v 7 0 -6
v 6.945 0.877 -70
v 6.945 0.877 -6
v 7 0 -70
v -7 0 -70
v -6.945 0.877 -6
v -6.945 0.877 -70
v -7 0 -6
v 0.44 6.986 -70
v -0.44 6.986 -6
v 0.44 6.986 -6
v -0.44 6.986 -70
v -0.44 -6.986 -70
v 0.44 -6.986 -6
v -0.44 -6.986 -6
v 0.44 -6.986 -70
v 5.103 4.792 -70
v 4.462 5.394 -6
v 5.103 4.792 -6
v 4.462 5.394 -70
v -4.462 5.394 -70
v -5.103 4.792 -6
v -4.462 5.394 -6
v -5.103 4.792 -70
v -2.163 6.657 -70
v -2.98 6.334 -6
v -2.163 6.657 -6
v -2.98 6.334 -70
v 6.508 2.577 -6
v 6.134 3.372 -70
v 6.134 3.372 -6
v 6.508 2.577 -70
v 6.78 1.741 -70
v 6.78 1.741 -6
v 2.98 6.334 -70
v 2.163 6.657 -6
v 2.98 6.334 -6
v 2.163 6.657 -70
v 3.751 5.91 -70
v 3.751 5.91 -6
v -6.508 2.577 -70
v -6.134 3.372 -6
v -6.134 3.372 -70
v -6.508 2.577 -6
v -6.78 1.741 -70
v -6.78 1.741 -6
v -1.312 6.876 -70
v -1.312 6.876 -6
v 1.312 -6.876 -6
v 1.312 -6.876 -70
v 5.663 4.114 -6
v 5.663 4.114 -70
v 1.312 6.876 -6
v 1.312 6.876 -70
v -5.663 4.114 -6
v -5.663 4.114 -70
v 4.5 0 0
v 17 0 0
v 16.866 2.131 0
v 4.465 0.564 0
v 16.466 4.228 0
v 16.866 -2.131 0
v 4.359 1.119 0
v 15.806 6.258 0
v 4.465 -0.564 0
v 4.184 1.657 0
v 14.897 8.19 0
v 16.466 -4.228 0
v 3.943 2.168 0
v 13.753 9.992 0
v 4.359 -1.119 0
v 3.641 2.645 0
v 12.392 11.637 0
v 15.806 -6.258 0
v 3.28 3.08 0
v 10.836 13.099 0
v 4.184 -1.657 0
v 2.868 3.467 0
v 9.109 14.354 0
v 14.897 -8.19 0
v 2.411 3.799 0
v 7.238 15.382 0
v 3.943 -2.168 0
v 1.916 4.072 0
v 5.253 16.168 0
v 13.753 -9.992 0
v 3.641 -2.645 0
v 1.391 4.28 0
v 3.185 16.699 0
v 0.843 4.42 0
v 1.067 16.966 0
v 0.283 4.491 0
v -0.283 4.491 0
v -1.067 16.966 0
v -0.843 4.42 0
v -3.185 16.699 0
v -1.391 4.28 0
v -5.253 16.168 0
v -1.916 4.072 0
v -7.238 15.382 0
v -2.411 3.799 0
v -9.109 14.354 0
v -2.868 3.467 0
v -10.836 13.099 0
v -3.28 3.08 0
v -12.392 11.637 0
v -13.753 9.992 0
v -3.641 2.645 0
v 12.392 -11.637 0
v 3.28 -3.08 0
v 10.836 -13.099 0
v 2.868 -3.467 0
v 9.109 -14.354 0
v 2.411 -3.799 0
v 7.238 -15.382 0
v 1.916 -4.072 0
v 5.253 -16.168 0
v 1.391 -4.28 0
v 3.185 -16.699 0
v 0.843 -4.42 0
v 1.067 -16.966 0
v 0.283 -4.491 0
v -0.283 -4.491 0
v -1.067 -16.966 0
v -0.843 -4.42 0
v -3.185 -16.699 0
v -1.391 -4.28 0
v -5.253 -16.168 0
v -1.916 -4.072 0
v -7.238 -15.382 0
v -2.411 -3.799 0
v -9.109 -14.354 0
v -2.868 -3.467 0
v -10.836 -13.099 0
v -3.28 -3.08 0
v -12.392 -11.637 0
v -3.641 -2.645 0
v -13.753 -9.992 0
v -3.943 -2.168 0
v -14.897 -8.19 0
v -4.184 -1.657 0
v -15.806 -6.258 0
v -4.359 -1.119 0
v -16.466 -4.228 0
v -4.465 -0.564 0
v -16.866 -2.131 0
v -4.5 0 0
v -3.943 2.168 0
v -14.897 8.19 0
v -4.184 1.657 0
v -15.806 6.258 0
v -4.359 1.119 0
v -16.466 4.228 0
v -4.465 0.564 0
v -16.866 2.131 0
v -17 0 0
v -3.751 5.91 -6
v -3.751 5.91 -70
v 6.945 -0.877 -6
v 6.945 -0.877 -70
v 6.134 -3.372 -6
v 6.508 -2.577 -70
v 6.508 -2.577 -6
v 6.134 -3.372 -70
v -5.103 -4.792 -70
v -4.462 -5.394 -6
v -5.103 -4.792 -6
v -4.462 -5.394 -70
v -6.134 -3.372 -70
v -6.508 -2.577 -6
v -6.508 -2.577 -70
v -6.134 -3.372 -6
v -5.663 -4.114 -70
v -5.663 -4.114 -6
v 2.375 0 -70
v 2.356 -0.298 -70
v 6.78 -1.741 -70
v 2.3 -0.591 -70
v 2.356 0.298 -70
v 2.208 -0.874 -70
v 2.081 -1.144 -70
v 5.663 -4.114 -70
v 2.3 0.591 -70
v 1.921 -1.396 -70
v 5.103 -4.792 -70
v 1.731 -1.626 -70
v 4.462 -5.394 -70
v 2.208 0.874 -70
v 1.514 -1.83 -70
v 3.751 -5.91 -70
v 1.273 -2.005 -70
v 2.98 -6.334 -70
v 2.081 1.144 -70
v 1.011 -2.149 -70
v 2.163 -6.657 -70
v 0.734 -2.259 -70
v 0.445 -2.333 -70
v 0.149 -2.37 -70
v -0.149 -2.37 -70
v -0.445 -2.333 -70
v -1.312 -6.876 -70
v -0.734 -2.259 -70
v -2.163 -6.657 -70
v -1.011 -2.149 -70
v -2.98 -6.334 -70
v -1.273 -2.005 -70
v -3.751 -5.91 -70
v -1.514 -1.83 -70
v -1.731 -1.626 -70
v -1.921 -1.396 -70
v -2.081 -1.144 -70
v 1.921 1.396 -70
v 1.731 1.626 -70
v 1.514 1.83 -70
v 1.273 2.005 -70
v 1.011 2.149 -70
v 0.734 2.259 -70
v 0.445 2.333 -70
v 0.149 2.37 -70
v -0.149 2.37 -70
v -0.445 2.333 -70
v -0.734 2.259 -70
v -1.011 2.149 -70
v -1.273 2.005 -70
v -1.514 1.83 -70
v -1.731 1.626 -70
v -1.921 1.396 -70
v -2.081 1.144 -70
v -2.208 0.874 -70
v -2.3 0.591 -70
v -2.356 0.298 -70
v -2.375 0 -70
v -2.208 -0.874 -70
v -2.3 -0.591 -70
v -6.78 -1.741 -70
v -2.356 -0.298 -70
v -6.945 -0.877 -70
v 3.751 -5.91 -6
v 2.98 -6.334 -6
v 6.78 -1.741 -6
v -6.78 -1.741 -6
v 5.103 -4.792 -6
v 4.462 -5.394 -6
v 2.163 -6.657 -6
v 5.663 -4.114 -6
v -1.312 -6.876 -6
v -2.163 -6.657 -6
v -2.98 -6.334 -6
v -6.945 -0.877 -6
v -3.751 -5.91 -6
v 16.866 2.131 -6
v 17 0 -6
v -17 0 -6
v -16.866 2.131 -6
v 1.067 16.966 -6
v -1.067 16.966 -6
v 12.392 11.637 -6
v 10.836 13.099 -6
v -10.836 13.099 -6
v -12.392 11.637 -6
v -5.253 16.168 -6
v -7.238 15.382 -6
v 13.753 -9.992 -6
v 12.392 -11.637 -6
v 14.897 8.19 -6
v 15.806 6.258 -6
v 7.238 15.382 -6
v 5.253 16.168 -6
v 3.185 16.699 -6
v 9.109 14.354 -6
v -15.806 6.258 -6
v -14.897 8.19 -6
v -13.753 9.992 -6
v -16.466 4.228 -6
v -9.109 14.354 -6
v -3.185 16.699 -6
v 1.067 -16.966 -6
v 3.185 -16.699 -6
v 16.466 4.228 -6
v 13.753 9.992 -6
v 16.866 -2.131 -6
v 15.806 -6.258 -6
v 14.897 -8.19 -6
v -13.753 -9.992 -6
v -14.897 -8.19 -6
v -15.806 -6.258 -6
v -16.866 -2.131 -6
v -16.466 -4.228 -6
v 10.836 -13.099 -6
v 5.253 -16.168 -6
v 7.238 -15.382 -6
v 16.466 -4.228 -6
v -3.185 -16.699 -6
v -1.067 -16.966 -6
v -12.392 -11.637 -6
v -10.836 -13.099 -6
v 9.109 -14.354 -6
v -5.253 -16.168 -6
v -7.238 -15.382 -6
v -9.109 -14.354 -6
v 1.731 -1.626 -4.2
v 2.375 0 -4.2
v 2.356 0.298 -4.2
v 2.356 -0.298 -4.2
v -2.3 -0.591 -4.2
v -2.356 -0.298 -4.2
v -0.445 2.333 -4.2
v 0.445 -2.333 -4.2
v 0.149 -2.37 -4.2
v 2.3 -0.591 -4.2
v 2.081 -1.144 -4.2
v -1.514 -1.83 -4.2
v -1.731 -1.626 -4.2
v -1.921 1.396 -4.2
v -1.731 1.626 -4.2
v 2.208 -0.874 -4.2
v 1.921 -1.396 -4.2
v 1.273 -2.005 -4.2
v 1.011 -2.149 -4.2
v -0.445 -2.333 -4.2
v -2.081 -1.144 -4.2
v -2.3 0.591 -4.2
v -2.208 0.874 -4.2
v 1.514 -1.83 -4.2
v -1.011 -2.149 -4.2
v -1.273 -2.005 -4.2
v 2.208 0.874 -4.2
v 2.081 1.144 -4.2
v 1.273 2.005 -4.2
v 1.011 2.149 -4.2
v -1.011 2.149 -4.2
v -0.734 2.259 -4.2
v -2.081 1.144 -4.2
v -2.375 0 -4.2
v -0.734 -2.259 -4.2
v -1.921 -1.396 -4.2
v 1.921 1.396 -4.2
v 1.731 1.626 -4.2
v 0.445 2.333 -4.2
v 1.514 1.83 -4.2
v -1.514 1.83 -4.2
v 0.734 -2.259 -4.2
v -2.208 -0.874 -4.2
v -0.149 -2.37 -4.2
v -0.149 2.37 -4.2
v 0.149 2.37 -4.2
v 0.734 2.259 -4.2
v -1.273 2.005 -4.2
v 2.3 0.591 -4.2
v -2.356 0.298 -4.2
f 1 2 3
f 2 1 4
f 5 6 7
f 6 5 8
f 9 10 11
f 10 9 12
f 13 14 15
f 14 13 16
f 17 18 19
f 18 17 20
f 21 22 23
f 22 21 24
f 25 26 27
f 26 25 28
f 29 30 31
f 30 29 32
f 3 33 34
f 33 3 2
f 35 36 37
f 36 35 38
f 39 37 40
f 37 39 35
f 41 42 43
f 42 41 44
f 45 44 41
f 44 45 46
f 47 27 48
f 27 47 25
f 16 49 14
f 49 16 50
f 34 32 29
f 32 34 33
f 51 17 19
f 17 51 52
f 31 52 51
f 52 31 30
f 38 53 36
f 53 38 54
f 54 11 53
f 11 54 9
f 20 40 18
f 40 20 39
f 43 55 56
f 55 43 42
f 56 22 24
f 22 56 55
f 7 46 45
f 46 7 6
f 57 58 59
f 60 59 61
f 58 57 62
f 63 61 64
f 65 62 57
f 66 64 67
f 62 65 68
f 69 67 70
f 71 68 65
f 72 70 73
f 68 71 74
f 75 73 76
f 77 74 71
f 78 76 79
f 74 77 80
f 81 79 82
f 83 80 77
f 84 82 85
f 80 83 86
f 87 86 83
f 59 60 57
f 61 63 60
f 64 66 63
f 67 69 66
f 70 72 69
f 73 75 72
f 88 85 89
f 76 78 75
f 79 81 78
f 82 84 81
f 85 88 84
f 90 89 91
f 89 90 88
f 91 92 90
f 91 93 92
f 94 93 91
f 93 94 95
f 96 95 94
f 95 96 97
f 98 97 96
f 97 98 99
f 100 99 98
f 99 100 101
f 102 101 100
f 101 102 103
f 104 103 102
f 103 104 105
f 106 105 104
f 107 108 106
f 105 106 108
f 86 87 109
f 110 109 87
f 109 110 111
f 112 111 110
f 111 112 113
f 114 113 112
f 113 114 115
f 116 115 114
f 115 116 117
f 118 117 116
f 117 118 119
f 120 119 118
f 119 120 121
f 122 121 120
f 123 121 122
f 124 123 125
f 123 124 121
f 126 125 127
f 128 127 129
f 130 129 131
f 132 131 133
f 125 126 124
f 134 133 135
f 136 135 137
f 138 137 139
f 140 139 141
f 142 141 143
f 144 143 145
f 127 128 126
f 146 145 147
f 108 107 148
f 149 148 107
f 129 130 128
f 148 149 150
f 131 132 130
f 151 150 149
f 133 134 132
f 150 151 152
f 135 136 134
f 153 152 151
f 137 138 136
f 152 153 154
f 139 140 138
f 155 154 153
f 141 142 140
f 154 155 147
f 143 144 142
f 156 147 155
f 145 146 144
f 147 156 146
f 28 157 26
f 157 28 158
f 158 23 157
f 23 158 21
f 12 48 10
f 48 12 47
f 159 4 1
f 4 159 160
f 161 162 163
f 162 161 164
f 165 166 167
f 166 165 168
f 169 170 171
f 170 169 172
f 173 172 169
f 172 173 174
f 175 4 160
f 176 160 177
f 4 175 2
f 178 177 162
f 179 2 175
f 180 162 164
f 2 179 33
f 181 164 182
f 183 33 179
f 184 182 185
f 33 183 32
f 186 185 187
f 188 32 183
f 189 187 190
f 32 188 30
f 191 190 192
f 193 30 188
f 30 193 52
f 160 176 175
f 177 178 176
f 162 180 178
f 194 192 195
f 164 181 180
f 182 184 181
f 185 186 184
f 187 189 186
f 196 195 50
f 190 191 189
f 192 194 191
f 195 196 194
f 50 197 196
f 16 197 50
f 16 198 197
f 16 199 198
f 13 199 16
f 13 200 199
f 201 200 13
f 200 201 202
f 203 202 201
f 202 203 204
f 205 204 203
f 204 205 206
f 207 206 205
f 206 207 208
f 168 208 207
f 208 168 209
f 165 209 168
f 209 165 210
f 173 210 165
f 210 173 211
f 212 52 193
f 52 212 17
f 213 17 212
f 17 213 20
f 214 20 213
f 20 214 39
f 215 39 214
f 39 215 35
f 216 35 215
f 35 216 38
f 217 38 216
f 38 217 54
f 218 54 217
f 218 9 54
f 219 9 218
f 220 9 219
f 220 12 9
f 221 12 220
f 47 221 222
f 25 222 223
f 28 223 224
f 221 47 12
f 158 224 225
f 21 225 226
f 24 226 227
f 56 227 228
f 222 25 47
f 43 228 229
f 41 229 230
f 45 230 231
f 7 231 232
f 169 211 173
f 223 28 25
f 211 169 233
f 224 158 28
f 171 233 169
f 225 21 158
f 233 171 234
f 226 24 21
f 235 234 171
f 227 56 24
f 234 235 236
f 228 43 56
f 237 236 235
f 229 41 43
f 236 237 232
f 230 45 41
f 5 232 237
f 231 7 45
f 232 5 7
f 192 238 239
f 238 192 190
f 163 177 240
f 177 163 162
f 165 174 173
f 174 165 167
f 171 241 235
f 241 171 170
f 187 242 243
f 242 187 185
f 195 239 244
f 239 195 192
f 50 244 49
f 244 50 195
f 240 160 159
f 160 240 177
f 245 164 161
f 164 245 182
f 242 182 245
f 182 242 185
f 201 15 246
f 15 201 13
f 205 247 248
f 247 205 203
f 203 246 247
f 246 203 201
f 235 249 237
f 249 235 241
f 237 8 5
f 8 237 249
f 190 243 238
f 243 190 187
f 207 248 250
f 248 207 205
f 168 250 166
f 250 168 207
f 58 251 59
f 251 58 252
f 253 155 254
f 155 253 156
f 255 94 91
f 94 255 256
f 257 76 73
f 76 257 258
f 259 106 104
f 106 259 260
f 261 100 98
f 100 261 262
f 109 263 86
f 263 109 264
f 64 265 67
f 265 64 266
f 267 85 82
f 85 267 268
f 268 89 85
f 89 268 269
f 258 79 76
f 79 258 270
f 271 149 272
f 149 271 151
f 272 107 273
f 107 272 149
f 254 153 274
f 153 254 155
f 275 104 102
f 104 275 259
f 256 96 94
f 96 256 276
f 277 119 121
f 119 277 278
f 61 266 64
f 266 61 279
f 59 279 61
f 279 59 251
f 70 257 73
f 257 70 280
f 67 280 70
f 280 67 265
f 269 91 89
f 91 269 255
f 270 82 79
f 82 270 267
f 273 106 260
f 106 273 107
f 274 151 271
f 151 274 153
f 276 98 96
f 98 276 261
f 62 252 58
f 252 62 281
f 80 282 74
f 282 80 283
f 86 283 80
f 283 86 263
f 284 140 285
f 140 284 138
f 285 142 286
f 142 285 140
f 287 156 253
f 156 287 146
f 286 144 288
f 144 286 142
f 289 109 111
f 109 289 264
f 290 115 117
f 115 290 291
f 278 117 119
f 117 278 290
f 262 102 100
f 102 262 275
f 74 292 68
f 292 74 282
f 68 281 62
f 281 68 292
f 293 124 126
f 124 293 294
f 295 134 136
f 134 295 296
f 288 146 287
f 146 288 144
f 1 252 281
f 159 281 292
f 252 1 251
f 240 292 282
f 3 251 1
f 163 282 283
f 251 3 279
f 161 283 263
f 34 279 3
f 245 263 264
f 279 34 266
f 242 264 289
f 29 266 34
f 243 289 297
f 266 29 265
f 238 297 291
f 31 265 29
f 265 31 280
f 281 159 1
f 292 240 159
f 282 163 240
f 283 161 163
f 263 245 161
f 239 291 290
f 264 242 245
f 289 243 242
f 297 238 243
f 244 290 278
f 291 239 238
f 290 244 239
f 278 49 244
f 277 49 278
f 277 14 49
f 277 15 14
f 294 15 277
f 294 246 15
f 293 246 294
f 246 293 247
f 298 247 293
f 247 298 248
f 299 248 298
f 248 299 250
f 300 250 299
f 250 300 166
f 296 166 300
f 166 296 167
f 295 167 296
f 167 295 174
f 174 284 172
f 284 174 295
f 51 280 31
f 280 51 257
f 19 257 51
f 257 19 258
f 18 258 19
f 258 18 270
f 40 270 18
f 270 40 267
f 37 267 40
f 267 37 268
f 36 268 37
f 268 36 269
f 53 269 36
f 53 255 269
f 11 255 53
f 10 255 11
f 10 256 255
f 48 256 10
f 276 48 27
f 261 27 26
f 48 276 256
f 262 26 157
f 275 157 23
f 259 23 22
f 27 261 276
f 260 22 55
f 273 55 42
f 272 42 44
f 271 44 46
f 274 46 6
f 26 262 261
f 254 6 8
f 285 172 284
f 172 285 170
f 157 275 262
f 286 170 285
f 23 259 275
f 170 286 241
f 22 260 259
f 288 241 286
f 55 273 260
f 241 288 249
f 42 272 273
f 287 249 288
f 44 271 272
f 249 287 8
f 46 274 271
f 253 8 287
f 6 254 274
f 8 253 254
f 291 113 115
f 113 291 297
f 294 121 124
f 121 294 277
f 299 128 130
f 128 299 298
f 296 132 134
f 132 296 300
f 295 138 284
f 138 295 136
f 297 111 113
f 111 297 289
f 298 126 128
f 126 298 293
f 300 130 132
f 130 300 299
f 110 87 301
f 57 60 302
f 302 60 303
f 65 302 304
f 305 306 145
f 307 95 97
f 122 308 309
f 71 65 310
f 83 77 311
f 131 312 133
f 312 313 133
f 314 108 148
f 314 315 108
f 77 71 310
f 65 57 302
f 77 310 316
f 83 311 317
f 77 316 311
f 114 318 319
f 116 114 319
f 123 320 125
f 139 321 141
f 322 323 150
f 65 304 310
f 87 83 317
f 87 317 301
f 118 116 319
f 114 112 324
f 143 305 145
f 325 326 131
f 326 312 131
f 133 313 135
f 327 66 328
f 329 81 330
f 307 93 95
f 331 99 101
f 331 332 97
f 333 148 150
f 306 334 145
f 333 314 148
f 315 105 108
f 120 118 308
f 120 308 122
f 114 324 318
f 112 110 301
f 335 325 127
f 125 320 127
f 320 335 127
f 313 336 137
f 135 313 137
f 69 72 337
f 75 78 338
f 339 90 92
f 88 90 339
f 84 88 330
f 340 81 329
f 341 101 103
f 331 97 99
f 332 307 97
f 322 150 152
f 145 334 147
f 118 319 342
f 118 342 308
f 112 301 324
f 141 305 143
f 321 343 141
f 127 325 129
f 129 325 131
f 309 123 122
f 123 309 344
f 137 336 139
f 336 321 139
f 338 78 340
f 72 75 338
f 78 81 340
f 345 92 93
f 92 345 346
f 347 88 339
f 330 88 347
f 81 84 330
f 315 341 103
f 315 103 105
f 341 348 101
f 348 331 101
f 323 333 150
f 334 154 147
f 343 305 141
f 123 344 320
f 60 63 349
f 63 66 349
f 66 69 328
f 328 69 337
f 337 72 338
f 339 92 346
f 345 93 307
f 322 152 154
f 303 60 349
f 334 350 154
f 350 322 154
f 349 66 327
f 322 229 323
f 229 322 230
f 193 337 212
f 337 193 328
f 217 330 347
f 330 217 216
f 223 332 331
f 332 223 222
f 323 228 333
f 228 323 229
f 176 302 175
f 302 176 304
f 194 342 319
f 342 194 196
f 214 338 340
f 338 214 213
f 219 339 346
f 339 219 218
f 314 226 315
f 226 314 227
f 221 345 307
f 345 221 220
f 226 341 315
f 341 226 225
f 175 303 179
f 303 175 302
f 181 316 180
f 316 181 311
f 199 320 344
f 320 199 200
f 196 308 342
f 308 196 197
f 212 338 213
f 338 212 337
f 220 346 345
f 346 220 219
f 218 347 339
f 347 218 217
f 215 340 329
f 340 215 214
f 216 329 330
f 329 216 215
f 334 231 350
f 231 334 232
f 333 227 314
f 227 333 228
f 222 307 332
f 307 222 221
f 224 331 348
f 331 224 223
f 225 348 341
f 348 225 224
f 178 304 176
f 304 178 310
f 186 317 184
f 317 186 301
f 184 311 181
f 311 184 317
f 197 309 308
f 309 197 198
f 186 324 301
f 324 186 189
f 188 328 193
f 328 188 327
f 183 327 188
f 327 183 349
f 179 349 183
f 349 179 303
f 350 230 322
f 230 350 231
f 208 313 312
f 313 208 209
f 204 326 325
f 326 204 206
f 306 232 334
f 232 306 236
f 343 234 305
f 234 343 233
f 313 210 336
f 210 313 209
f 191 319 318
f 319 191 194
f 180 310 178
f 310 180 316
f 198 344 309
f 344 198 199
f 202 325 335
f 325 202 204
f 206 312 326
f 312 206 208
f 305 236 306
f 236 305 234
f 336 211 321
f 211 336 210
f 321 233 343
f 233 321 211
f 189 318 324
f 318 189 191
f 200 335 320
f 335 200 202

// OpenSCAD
$fn = 50;


difference() {
	union() {
		translate(v = [0, 0, -70.0000000000]) {
			cylinder(h = 70, r = 7.0000000000);
		}
		translate(v = [0, 0, -6.0000000000]) {
			cylinder(h = 6, r = 17.0000000000);
		}
	}
	union() {
		translate(v = [0, 0, 0]) {
			rotate(a = [0, 0, 0]) {
				difference() {
					union() {
						#translate(v = [0, 0, -70.0000000000]) {
							cylinder(h = 70, r = 2.2500000000);
						}
						#translate(v = [0, 0, -4.2000000000]) {
							cylinder(h = 4.2000000000, r = 7.0000000000, r1 = 2.3750000000, r2 = 4.5000000000);
						}
						#translate(v = [0, 0, -70.0000000000]) {
							cylinder(h = 70, r = 2.3750000000);
						}
						#translate(v = [0, 0, -70.0000000000]) {
							cylinder(h = 70, r = 2.2500000000);
						}
					}
					union();
				}
			}
		}
	}
}
